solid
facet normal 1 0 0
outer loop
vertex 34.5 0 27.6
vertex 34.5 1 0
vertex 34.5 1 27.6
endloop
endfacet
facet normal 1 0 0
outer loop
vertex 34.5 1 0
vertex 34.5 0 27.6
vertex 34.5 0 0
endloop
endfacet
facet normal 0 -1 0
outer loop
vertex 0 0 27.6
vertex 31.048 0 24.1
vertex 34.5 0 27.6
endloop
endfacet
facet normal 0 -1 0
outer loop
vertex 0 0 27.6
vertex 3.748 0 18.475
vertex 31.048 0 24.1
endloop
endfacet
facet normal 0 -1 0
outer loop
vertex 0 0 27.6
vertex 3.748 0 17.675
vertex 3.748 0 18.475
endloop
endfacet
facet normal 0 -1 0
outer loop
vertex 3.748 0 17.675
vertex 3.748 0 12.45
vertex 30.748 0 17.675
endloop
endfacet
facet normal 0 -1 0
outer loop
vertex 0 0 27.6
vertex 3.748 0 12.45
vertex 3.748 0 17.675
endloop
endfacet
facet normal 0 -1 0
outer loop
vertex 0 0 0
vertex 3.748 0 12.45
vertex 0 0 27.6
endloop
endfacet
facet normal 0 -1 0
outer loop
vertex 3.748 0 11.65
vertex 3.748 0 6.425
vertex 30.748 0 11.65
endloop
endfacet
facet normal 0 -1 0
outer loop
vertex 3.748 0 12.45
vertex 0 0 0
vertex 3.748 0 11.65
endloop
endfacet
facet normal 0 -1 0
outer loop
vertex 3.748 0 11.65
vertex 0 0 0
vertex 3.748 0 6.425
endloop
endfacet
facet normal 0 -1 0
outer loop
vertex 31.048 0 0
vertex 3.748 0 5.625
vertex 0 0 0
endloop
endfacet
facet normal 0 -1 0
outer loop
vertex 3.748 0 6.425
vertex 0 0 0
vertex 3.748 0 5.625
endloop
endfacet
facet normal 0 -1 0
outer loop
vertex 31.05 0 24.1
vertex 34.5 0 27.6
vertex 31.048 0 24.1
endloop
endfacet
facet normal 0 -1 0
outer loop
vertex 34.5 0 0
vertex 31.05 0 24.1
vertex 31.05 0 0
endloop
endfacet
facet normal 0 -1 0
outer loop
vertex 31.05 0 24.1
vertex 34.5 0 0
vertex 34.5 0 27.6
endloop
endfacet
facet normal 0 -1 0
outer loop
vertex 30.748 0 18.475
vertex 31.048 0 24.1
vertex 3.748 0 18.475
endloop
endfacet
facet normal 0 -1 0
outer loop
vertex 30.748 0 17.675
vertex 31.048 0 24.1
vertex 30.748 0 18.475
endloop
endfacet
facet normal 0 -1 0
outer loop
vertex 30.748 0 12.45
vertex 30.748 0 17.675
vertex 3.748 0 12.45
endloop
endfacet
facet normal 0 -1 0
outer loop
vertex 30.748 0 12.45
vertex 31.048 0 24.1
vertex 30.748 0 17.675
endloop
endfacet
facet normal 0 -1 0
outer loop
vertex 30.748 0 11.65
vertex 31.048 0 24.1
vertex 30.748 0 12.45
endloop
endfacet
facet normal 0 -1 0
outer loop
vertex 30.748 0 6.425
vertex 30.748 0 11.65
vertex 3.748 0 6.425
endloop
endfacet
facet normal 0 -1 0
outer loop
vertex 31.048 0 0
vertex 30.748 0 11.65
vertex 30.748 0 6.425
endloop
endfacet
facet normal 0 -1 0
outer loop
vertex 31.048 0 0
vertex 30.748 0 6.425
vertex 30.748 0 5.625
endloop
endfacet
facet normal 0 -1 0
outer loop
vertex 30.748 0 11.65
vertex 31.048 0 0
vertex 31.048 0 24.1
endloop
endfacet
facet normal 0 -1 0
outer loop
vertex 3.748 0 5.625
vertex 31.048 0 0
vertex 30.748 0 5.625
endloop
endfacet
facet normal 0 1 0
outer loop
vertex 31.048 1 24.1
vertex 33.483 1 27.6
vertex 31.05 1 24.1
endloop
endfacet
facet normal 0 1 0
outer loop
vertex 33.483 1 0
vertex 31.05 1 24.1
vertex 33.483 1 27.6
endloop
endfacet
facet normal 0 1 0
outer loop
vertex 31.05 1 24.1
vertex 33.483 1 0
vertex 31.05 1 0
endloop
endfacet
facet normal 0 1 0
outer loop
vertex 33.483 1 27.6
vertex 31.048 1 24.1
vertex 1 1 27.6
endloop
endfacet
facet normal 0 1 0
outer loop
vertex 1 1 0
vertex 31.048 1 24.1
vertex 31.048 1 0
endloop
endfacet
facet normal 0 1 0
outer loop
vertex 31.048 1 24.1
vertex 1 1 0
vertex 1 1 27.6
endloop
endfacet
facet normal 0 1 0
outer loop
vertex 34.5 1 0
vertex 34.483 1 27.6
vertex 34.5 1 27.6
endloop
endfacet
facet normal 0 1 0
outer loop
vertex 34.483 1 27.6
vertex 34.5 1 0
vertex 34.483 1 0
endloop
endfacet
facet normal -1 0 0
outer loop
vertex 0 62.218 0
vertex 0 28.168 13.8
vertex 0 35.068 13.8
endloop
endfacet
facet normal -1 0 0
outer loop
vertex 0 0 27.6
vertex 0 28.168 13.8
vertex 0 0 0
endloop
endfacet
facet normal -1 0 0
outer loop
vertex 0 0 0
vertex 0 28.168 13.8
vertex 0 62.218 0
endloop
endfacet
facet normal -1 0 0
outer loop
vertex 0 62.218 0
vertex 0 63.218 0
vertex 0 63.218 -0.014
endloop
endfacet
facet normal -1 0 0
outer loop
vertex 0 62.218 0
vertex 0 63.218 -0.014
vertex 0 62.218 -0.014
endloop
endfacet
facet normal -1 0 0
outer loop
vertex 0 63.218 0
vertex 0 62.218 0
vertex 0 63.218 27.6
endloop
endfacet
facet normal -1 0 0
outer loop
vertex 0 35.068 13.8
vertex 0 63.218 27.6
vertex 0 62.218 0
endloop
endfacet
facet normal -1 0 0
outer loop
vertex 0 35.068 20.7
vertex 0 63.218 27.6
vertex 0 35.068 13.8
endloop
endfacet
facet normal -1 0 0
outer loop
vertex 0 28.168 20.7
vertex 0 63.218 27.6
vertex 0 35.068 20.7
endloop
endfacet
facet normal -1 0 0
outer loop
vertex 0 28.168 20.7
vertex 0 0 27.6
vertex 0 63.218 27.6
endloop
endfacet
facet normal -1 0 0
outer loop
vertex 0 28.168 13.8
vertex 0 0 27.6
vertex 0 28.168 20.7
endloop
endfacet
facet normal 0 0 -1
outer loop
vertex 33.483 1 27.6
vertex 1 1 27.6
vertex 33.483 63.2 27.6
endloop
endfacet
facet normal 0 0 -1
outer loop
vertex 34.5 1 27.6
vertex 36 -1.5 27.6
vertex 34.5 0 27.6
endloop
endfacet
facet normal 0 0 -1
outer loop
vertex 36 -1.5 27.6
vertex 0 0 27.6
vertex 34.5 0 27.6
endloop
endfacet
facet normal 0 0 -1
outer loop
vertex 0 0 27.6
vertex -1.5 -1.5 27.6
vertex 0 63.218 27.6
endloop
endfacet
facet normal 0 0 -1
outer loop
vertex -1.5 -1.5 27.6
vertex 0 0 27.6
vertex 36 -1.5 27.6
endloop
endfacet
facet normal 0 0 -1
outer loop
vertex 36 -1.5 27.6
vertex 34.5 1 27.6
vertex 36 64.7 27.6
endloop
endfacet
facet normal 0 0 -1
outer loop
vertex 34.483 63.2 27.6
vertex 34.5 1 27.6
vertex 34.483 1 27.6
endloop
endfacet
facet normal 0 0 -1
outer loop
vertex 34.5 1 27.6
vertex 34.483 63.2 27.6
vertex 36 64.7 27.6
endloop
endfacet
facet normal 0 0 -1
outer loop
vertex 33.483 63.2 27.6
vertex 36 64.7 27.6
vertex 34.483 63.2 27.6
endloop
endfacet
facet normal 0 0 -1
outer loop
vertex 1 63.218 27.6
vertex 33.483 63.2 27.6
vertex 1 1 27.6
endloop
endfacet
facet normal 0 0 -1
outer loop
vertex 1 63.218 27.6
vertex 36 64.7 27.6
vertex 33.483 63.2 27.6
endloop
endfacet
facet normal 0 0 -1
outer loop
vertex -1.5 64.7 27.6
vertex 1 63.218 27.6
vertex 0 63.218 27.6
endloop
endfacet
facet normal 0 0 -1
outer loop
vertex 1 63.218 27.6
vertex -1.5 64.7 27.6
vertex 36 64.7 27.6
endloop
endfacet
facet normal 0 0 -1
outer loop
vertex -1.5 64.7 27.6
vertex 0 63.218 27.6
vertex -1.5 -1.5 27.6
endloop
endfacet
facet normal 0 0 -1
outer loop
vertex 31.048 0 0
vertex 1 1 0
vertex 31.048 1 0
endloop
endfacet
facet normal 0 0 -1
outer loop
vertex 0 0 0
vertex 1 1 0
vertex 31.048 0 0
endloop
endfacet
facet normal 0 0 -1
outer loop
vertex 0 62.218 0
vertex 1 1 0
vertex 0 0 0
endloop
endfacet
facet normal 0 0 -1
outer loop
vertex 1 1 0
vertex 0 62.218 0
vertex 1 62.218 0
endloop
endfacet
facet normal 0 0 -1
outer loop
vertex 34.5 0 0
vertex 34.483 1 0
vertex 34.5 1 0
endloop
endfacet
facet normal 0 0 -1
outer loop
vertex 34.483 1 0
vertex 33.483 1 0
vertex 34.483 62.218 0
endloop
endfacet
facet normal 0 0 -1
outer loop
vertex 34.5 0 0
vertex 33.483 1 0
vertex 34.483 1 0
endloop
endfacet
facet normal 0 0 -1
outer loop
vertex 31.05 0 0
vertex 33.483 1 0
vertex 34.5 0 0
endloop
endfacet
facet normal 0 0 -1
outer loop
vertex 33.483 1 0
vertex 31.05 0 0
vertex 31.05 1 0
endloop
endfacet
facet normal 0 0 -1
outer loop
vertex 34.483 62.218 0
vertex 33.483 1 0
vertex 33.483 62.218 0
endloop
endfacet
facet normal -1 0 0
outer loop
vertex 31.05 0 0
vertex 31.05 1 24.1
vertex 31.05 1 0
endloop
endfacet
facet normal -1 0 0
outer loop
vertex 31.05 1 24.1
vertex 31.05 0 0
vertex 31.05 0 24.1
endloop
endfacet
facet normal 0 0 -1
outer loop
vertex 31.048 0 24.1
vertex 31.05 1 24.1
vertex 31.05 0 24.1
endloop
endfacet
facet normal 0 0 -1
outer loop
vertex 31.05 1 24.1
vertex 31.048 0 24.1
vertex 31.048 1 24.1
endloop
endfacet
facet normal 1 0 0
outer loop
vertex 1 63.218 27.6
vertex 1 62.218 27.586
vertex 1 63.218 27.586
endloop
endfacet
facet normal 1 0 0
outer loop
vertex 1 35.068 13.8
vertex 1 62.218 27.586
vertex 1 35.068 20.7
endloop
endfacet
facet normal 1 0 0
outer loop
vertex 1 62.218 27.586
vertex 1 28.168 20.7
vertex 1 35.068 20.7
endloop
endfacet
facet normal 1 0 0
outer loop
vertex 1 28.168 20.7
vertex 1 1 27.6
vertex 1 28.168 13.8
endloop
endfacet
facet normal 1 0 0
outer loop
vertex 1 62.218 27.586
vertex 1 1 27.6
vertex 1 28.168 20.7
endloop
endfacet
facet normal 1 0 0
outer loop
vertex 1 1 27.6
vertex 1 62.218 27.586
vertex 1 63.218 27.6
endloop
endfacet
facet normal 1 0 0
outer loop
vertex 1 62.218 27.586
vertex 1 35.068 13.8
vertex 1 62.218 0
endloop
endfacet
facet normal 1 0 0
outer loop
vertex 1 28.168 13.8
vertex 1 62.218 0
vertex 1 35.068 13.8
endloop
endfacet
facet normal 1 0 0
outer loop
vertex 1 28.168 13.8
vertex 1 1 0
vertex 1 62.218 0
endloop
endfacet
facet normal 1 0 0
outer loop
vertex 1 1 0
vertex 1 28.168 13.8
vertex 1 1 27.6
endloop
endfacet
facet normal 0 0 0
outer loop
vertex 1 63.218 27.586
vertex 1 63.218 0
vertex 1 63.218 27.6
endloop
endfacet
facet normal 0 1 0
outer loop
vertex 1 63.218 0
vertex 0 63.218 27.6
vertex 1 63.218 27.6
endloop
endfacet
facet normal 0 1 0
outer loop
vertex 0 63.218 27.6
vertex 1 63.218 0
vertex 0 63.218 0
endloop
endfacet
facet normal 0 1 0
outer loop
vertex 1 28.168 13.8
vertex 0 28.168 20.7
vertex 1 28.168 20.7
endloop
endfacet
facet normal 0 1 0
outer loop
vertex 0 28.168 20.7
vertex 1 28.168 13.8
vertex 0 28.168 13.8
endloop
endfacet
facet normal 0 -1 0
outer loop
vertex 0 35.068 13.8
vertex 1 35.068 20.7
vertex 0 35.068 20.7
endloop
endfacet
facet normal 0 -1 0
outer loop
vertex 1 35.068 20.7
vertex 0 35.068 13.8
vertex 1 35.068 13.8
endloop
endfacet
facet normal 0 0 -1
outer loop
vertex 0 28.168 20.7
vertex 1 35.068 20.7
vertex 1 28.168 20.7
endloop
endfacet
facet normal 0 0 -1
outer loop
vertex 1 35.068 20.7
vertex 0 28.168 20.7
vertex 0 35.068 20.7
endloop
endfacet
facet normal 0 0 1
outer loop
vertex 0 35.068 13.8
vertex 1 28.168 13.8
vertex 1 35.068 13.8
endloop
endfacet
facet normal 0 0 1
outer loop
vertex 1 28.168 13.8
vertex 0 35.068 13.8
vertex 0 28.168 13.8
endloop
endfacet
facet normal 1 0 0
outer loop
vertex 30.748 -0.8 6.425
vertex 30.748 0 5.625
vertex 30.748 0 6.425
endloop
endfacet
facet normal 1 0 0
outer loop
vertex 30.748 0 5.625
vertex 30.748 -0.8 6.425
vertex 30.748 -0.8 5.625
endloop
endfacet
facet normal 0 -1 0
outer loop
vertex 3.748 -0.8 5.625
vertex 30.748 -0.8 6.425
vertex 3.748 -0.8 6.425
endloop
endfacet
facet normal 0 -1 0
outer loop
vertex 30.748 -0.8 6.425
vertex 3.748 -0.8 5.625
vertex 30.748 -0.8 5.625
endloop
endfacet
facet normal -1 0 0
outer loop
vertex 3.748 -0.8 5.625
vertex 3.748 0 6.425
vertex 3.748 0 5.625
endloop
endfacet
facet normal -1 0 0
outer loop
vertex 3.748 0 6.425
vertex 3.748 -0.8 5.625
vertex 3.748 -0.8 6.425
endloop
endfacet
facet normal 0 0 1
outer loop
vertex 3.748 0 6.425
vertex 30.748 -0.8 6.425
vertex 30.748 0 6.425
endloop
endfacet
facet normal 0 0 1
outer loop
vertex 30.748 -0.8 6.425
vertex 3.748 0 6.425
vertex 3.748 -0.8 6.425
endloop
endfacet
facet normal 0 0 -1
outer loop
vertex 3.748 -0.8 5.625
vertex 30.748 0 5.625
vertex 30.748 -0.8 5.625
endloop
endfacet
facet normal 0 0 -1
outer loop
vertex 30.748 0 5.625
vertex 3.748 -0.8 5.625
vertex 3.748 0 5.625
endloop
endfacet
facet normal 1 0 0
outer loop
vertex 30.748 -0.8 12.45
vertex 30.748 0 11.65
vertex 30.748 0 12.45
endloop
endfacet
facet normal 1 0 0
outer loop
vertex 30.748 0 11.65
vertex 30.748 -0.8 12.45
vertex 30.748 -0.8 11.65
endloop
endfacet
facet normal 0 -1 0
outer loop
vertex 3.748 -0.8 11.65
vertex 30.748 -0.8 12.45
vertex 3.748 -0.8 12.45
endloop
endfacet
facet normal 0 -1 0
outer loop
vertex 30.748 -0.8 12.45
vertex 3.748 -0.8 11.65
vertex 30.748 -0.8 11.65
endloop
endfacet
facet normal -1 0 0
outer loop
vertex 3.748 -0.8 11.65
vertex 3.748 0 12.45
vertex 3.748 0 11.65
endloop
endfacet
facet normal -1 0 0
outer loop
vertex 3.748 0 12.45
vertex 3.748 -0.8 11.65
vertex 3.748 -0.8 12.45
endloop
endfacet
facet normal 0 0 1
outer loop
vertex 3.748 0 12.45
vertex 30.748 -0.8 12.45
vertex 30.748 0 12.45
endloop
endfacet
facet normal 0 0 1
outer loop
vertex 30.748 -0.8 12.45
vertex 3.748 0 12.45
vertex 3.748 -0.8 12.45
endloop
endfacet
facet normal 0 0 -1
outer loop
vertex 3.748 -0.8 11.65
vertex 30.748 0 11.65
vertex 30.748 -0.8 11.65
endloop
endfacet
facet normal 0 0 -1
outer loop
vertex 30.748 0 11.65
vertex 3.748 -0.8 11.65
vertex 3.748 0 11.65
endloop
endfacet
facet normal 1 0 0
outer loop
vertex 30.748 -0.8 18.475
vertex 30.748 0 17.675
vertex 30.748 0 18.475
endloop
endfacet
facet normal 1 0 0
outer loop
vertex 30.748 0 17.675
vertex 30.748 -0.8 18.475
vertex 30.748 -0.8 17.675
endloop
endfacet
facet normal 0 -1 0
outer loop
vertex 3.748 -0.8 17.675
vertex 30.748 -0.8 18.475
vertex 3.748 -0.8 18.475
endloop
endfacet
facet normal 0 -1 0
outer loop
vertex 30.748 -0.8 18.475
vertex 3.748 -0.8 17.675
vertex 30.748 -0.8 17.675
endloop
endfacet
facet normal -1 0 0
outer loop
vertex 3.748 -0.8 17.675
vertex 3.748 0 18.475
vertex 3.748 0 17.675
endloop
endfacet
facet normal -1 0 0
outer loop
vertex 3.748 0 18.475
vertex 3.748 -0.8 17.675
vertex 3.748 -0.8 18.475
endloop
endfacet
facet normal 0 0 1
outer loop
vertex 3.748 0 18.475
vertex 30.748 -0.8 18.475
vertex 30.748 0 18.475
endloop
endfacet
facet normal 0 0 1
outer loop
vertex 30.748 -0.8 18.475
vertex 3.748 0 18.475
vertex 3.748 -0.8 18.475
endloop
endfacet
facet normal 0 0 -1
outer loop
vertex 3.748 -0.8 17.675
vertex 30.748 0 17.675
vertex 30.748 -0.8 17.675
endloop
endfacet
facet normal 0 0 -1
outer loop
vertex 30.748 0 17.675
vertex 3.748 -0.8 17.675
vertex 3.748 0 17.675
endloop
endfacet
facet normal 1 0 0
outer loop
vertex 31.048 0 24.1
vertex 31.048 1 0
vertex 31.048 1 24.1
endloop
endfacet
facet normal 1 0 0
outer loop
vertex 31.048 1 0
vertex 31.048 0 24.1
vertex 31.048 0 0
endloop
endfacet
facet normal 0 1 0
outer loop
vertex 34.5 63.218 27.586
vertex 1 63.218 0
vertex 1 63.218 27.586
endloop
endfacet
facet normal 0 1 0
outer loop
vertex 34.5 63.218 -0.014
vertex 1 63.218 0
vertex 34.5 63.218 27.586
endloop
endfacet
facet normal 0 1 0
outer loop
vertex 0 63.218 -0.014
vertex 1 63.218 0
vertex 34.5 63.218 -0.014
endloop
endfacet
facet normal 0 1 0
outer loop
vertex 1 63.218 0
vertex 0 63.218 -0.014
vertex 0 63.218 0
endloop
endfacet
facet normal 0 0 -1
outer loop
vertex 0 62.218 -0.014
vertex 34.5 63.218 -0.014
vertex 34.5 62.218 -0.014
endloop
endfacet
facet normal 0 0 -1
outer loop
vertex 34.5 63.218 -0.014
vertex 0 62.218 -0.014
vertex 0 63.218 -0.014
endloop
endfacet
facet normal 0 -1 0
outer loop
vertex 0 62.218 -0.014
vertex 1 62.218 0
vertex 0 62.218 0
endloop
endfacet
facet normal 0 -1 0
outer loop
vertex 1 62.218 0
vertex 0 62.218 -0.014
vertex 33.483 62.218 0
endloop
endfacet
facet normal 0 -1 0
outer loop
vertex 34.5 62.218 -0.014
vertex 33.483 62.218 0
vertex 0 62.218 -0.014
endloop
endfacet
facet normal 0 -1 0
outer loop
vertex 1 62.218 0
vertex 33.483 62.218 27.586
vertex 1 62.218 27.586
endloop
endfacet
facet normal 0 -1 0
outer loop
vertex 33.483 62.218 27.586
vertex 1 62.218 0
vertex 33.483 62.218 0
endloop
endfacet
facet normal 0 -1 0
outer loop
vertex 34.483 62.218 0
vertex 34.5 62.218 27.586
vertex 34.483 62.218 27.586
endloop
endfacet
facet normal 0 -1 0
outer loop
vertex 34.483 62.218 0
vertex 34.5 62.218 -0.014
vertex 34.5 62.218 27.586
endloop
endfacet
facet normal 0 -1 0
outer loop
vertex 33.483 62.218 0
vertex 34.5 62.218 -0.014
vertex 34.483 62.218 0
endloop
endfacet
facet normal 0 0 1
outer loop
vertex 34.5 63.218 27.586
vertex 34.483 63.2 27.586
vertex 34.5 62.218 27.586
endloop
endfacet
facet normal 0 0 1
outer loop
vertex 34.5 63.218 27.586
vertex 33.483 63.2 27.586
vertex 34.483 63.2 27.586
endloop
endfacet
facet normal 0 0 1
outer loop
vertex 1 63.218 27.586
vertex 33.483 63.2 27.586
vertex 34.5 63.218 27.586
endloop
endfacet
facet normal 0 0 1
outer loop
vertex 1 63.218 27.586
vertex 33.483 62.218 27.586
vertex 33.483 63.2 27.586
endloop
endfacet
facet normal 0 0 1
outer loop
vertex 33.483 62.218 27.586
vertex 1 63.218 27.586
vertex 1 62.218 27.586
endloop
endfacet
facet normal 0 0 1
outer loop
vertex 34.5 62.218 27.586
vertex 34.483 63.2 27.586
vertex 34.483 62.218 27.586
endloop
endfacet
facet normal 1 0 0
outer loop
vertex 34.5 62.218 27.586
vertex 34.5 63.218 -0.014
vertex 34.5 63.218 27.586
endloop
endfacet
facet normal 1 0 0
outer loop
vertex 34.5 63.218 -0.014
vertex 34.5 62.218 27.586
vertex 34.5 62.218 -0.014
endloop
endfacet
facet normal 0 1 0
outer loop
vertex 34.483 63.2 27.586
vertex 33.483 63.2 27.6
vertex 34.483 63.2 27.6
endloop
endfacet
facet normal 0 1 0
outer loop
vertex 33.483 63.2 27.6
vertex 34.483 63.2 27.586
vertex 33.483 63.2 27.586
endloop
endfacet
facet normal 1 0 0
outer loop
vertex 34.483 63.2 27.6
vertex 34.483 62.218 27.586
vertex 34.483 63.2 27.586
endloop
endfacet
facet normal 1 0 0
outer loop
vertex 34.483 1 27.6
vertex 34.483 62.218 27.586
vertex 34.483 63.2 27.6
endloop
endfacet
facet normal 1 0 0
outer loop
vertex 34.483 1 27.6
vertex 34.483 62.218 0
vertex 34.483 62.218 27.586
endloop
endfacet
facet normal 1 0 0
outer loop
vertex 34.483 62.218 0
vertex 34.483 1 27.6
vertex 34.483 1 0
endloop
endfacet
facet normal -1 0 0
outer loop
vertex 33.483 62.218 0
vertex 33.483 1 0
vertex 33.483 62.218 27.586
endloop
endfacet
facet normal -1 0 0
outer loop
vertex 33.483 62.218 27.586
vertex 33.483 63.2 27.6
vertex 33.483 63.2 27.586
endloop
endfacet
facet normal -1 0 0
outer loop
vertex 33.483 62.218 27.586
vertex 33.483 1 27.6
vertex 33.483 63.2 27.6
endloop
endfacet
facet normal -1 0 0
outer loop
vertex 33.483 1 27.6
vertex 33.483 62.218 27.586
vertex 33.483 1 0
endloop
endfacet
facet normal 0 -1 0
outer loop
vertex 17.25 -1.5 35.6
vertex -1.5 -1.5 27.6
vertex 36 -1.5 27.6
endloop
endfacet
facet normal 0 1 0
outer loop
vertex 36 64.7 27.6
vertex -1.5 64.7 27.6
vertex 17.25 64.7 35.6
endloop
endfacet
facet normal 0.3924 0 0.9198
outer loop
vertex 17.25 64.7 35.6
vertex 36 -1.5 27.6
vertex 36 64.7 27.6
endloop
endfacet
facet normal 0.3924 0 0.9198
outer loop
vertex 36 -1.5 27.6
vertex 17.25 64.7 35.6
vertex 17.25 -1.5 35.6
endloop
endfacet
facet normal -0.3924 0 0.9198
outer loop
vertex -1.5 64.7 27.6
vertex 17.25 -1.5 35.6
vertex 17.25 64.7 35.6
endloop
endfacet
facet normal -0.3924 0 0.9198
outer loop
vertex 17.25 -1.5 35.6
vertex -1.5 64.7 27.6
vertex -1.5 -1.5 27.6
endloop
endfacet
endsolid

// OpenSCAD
// file: single_car_garage_roof.scad
/*
 * PROMPT: H0 scale (1:87) single-car garage gable roof assembly: two flat slope panels (20.4 mm x 66.2 mm x 1 mm each) and two triangular gable end panels (37.5 mm base x 8.0 mm rise x 1 mm thick), plus a 3D assembled roof polyhedron with 1.5 mm overhang on all sides.
 */

$fn = 32;

panel_t    = 1.0;

bld_w      = 34.5;
bld_h      = 27.6;
bld_d      = 63.2;
roof_oh    = 1.5;
roof_rise  = 8.0;

rw         = bld_w + 2 * roof_oh;   // 37.5
rd         = bld_d + 2 * roof_oh;   // 66.2
slope_w    = sqrt((rw / 2) * (rw / 2) + roof_rise * roof_rise); // ≈ 20.4

module roof_slope() {
    cube([slope_w, rd, panel_t]);
}

module roof_gable() {
    linear_extrude(panel_t)
        polygon([[0, 0], [rw, 0], [rw / 2, roof_rise]]);
}

module roof_assembled() {
    translate([-roof_oh, -roof_oh, bld_h])
        polyhedron(
            points = [
                [0,      0,          0],          // 0 front-left eave
                [rw,     0,          0],          // 1 front-right eave
                [rw,     rd,         0],          // 2 back-right eave
                [0,      rd,         0],          // 3 back-left eave
                [rw / 2, 0,          roof_rise],  // 4 front ridge
                [rw / 2, rd,         roof_rise]   // 5 back ridge
            ],
            faces = [
                [0, 3, 2, 1],   // eave soffit (bottom)
                [0, 1, 4],      // front gable
                [3, 5, 2],      // back gable
                [1, 2, 5, 4],   // right slope
                [0, 4, 5, 3]    // left slope
            ]
        );
}

// Print layout: two slope panels side by side, two gable triangles below
roof_slope();
translate([slope_w + 2, 0, 0]) roof_slope();
translate([0, rd + 2, 0]) roof_gable();
translate([rw + 2, rd + 2, 0]) roof_gable();
// file: single_car_garage_garage_door.scad
/*
 * PROMPT: H0 scale (1:87) single-car garage door panel, 27.6 mm wide x 24.1 mm tall x 1 mm thick, with 3 raised horizontal rails dividing the door into 4 equal sections, each rail 0.8 mm tall protruding 0.8 mm above the exterior face.
 */

$fn = 32;

panel_t  = 1.0;
rail_h   = 0.8;
rail_proud = 0.8;

gd_w = 27.6;
gd_h = 24.1;

sections = 4;

module garage_door() {
    // Base panel
    cube([gd_w, gd_h, panel_t]);

    // 3 raised horizontal rails at section boundaries (i = 1, 2, 3)
    for (i = [1 : sections - 1]) {
        y = i * gd_h / sections;
        translate([0.3, y - rail_h / 2, 1])
            cube([gd_w - 0.6, rail_proud, rail_h]);
    }
}

garage_door();
// file: single_car_garage_wall_right.scad
/*
 * PROMPT: H0 scale (1:87) single-car garage right side wall panel, 63.2 mm wide x 27.6 mm tall x 1 mm thick, plain with no openings.
 */

$fn = 32;

panel_t = 1.0;

bld_d = 63.2;
bld_h = 27.6;

module wall_right() {
    cube([bld_d, bld_h, panel_t]);
}

wall_right();
// file: single_car_garage_wall_left.scad
/*
 * PROMPT: H0 scale (1:87) single-car garage left side wall panel, 63.2 mm wide x 27.6 mm tall x 1 mm thick, with a centred through-hole window opening 6.9 mm wide x 6.9 mm tall at sill height 13.8 mm.
 */

$fn = 32;

panel_t = 1.0;

bld_d    = 63.2;
bld_h    = 27.6;
win_w    = 6.9;
win_h    = 6.9;
win_sill = 13.8;

module wall_left() {
    difference() {
        cube([bld_d, bld_h, panel_t]);
        // Window opening (through hole), centred horizontally
        translate([(bld_d - win_w) / 2, win_sill, -1])
            cube([win_w, win_h, panel_t + 2]);
    }
}

wall_left();
// file: single_car_garage_wall_back.scad
/*
 * PROMPT: H0 scale (1:87) single-car garage back wall panel, 34.5 mm wide x 27.6 mm tall x 1 mm thick, plain with no openings.
 */

$fn = 32;

panel_t = 1.0;

bld_w = 34.5;
bld_h = 27.6;

module wall_back() {
    cube([bld_w, bld_h, panel_t]);
}

wall_back();
// file: single_car_garage_wall_front.scad
/*
 * PROMPT: H0 scale (1:87) single-car garage front wall panel, 34.5 mm wide x 27.6 mm tall x 1 mm thick, with a centred through-hole for the garage door opening 27.6 mm wide x 24.1 mm tall at the bottom.
 */

$fn = 32;

panel_t = 1.0;

bld_w = 34.5;
bld_h = 27.6;
gd_w  = 27.6;
gd_h  = 24.1;

module wall_front() {
    difference() {
        cube([bld_w, bld_h, panel_t]);
        // Garage door opening (through hole), centred horizontally, from y=0
        translate([(bld_w - gd_w) / 2, 0, -1])
            cube([gd_w, gd_h, panel_t + 2]);
    }
}

wall_front();
// main file
/*
 * PROMPT: H0 scale (1:87) single-car garage 3D assembly visualization combining all wall panels, garage door, and roof in their correct positions.
 */

use <single_car_garage_wall_front.scad>
use <single_car_garage_wall_back.scad>
use <single_car_garage_wall_left.scad>
use <single_car_garage_wall_right.scad>
use <single_car_garage_garage_door.scad>
use <single_car_garage_roof.scad>

$fn = 32;

S       = 1 / 87;
panel_t = 1.0;

bld_w     = 3000 * S;   // 34.5
bld_d     = 5500 * S;   // 63.2
bld_h     = 2400 * S;   // 27.6
gd_w      = 2400 * S;   // 27.6
gd_h      = 2100 * S;   // 24.1
roof_oh   = 1.5;
rw        = bld_w + 2 * roof_oh;   // 37.5
rd        = bld_d + 2 * roof_oh;   // 66.2
slope_w   = sqrt((rw / 2) * (rw / 2) + 8.0 * 8.0); // ≈ 20.4

// Front wall — exterior face at Y=0, panel extending in +Y
translate([0, panel_t, 0])
    rotate([90, 0, 0])
        wall_front();

// Back wall — exterior face at Y=bld_d
translate([0, bld_d - panel_t, bld_h])
    rotate([-90, 0, 0])
        wall_back();

// Left wall — exterior face at X=0
translate([panel_t, bld_d, 0])
    rotate([0, 0, -90])
        rotate([90, 0, 0])
            wall_left();

// Right wall — exterior face at X=bld_w
translate([bld_w - panel_t, 0, 0])
    rotate([0, 0, 90])
        rotate([90, 0, 0])
            wall_right();

// Garage door — seated in front wall opening, centred
translate([(bld_w - gd_w) / 2, panel_t, 0])
    rotate([90, 0, 0])
        garage_door();

// Roof
roof_assembled();
